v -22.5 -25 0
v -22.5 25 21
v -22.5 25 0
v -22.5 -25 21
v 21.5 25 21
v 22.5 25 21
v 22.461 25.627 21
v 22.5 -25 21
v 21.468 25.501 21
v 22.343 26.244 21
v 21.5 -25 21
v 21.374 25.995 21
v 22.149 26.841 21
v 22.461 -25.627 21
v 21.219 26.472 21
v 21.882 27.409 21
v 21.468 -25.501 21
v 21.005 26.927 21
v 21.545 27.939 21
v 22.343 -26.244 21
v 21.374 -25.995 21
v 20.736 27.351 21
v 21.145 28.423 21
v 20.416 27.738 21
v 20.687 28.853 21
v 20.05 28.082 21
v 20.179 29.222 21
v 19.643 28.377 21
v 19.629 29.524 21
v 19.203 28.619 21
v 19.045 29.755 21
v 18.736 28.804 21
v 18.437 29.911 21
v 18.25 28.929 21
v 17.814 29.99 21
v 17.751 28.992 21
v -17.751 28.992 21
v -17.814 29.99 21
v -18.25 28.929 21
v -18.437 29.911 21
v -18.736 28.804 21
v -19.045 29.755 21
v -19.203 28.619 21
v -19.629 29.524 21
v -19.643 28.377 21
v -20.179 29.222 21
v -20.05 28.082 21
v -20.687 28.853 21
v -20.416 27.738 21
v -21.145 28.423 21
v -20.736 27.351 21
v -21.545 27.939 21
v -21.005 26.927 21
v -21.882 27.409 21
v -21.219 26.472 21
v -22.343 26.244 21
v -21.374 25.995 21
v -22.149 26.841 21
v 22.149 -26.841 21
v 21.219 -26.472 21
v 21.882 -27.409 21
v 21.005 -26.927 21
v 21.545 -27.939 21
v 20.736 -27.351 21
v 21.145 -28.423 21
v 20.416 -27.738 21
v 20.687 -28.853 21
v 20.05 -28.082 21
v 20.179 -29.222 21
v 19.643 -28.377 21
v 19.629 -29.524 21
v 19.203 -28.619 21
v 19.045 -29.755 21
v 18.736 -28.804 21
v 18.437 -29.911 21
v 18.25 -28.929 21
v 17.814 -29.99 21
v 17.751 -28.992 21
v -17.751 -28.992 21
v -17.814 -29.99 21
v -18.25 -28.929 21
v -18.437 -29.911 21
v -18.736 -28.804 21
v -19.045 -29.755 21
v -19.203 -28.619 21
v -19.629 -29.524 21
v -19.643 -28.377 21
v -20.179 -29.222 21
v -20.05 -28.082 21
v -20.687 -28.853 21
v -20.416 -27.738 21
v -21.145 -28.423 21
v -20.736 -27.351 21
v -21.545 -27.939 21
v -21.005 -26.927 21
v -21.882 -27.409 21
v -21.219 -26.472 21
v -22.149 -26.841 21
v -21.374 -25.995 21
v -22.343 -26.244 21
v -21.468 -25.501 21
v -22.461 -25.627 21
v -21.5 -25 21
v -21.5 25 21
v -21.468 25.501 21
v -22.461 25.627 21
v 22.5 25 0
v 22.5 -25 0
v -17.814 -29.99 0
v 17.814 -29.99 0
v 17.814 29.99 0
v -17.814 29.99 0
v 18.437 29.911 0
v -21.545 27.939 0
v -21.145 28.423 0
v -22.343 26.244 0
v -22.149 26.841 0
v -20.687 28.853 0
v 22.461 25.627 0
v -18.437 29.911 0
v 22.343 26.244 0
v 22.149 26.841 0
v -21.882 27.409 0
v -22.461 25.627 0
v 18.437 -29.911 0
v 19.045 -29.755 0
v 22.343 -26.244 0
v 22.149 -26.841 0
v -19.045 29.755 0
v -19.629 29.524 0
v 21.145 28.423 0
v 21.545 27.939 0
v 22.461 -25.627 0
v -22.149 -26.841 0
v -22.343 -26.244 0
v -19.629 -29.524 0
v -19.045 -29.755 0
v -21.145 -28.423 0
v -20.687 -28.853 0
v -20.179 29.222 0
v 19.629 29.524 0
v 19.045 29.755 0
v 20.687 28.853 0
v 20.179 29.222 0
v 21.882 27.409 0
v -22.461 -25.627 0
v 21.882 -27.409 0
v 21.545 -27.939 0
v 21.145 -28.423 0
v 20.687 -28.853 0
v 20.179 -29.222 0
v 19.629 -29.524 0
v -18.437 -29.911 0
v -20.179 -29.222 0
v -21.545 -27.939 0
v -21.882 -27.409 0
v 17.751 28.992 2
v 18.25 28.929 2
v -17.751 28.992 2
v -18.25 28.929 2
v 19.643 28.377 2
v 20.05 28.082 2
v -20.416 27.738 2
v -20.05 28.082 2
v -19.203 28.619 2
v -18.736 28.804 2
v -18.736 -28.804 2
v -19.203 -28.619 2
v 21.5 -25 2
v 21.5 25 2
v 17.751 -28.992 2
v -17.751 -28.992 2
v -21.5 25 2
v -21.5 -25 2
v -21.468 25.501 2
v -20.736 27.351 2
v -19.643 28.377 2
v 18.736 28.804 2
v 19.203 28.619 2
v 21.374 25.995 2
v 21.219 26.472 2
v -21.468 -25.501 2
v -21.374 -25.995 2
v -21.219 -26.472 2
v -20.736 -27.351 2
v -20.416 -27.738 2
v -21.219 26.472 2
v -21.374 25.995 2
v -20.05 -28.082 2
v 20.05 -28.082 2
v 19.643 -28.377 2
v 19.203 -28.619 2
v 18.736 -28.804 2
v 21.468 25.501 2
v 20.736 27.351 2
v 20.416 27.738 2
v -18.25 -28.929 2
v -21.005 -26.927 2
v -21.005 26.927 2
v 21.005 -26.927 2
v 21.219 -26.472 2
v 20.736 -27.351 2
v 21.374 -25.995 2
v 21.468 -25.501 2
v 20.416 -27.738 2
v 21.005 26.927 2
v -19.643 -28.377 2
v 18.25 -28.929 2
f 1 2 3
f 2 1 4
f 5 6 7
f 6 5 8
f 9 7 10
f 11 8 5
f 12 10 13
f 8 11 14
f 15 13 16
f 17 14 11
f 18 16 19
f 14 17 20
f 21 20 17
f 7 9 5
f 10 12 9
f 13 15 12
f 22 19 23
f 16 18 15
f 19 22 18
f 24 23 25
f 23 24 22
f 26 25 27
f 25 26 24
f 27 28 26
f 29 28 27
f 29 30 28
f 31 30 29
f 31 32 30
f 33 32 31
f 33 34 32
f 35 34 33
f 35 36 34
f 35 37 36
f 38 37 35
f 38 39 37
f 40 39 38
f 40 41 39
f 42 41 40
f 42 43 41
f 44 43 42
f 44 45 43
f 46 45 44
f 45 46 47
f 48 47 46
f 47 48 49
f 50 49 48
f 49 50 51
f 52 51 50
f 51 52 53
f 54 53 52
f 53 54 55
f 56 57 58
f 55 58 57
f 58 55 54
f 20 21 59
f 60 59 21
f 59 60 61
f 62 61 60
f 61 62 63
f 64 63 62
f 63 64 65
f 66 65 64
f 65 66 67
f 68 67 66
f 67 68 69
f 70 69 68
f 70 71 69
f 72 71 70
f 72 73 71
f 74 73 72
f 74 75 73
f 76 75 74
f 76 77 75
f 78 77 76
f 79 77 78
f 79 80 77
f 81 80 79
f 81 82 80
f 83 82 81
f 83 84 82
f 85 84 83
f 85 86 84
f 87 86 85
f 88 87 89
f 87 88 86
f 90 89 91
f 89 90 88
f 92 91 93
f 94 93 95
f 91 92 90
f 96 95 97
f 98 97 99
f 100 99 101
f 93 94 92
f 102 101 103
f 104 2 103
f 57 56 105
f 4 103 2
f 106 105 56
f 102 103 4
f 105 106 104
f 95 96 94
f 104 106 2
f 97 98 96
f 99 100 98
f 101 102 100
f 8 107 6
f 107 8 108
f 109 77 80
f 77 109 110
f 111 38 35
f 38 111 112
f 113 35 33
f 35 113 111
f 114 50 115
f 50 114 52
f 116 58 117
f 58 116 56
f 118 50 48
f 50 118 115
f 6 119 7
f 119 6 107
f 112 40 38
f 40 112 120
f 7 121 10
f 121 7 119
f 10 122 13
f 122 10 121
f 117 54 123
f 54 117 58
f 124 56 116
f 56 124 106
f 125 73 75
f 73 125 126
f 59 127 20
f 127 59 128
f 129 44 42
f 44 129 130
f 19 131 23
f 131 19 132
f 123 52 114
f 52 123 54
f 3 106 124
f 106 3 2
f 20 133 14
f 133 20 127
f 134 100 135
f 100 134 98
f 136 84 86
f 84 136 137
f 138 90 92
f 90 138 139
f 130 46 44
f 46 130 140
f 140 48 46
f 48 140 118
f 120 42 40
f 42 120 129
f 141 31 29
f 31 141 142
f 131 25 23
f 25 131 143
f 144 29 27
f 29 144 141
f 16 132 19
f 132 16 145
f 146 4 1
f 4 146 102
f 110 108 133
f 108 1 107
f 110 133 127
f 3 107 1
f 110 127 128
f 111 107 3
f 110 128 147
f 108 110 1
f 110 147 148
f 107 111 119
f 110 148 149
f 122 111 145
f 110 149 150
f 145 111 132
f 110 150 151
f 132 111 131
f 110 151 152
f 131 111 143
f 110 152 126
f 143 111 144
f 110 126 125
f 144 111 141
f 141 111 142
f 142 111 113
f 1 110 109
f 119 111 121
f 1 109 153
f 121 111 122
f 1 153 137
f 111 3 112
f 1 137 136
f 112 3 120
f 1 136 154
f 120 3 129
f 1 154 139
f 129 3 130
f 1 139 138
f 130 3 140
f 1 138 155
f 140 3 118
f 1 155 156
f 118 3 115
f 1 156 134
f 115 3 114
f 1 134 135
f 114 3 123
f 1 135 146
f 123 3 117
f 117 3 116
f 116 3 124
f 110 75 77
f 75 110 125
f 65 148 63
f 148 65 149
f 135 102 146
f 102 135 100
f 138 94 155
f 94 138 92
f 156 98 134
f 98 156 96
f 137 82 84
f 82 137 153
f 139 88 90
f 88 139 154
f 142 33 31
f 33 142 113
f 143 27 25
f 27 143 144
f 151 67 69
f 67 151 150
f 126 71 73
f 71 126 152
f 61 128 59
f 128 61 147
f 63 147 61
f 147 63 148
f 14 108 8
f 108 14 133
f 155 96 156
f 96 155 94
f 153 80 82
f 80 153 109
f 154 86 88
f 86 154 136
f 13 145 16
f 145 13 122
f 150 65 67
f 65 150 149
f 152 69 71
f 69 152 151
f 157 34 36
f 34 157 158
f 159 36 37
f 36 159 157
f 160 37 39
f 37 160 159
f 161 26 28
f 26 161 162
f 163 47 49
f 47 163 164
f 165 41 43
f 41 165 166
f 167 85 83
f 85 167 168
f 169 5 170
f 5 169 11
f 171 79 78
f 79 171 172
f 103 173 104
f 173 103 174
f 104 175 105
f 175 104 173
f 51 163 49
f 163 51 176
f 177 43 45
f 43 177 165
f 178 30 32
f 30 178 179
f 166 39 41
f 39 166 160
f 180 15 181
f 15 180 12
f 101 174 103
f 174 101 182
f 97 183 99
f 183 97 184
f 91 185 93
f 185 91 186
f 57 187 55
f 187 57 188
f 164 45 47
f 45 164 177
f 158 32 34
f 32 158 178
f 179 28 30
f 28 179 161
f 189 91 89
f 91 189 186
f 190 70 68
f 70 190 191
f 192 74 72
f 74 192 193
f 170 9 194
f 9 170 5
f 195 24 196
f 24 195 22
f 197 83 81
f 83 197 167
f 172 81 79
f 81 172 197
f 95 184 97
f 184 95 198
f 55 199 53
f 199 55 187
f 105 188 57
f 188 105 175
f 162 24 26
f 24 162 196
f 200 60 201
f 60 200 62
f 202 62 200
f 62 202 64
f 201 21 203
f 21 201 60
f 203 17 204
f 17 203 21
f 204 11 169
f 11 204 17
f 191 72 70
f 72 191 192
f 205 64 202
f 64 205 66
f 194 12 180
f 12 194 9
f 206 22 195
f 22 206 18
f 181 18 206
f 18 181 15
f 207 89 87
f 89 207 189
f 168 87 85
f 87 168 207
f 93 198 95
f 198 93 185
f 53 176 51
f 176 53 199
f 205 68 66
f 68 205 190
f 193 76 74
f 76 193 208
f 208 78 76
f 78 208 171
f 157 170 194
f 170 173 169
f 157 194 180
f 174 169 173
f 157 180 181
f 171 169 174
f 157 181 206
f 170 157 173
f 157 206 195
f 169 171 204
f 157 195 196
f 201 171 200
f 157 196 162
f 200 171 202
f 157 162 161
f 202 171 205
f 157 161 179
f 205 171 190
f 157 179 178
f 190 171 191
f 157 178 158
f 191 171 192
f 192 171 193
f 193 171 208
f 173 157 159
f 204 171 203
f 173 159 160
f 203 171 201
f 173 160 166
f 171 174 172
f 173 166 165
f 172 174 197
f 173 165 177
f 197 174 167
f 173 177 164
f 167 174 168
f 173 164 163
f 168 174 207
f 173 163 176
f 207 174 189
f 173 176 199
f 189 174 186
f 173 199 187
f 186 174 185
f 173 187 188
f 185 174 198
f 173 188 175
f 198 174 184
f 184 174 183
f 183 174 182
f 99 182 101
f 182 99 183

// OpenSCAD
$fn = 50;


difference() {
	union() {
		hull() {
			translate(v = [-17.5000000000, 25.0000000000, 0]) {
				cylinder(h = 21, r = 5);
			}
			translate(v = [17.5000000000, 25.0000000000, 0]) {
				cylinder(h = 21, r = 5);
			}
			translate(v = [-17.5000000000, -25.0000000000, 0]) {
				cylinder(h = 21, r = 5);
			}
			translate(v = [17.5000000000, -25.0000000000, 0]) {
				cylinder(h = 21, r = 5);
			}
		}
	}
	union() {
		translate(v = [0, 0, 2]) {
			hull() {
				translate(v = [-17.5000000000, 25.0000000000, 0]) {
					cylinder(h = 19, r = 4);
				}
				translate(v = [17.5000000000, 25.0000000000, 0]) {
					cylinder(h = 19, r = 4);
				}
				translate(v = [-17.5000000000, -25.0000000000, 0]) {
					cylinder(h = 19, r = 4);
				}
				translate(v = [17.5000000000, -25.0000000000, 0]) {
					cylinder(h = 19, r = 4);
				}
			}
		}
	}
}
